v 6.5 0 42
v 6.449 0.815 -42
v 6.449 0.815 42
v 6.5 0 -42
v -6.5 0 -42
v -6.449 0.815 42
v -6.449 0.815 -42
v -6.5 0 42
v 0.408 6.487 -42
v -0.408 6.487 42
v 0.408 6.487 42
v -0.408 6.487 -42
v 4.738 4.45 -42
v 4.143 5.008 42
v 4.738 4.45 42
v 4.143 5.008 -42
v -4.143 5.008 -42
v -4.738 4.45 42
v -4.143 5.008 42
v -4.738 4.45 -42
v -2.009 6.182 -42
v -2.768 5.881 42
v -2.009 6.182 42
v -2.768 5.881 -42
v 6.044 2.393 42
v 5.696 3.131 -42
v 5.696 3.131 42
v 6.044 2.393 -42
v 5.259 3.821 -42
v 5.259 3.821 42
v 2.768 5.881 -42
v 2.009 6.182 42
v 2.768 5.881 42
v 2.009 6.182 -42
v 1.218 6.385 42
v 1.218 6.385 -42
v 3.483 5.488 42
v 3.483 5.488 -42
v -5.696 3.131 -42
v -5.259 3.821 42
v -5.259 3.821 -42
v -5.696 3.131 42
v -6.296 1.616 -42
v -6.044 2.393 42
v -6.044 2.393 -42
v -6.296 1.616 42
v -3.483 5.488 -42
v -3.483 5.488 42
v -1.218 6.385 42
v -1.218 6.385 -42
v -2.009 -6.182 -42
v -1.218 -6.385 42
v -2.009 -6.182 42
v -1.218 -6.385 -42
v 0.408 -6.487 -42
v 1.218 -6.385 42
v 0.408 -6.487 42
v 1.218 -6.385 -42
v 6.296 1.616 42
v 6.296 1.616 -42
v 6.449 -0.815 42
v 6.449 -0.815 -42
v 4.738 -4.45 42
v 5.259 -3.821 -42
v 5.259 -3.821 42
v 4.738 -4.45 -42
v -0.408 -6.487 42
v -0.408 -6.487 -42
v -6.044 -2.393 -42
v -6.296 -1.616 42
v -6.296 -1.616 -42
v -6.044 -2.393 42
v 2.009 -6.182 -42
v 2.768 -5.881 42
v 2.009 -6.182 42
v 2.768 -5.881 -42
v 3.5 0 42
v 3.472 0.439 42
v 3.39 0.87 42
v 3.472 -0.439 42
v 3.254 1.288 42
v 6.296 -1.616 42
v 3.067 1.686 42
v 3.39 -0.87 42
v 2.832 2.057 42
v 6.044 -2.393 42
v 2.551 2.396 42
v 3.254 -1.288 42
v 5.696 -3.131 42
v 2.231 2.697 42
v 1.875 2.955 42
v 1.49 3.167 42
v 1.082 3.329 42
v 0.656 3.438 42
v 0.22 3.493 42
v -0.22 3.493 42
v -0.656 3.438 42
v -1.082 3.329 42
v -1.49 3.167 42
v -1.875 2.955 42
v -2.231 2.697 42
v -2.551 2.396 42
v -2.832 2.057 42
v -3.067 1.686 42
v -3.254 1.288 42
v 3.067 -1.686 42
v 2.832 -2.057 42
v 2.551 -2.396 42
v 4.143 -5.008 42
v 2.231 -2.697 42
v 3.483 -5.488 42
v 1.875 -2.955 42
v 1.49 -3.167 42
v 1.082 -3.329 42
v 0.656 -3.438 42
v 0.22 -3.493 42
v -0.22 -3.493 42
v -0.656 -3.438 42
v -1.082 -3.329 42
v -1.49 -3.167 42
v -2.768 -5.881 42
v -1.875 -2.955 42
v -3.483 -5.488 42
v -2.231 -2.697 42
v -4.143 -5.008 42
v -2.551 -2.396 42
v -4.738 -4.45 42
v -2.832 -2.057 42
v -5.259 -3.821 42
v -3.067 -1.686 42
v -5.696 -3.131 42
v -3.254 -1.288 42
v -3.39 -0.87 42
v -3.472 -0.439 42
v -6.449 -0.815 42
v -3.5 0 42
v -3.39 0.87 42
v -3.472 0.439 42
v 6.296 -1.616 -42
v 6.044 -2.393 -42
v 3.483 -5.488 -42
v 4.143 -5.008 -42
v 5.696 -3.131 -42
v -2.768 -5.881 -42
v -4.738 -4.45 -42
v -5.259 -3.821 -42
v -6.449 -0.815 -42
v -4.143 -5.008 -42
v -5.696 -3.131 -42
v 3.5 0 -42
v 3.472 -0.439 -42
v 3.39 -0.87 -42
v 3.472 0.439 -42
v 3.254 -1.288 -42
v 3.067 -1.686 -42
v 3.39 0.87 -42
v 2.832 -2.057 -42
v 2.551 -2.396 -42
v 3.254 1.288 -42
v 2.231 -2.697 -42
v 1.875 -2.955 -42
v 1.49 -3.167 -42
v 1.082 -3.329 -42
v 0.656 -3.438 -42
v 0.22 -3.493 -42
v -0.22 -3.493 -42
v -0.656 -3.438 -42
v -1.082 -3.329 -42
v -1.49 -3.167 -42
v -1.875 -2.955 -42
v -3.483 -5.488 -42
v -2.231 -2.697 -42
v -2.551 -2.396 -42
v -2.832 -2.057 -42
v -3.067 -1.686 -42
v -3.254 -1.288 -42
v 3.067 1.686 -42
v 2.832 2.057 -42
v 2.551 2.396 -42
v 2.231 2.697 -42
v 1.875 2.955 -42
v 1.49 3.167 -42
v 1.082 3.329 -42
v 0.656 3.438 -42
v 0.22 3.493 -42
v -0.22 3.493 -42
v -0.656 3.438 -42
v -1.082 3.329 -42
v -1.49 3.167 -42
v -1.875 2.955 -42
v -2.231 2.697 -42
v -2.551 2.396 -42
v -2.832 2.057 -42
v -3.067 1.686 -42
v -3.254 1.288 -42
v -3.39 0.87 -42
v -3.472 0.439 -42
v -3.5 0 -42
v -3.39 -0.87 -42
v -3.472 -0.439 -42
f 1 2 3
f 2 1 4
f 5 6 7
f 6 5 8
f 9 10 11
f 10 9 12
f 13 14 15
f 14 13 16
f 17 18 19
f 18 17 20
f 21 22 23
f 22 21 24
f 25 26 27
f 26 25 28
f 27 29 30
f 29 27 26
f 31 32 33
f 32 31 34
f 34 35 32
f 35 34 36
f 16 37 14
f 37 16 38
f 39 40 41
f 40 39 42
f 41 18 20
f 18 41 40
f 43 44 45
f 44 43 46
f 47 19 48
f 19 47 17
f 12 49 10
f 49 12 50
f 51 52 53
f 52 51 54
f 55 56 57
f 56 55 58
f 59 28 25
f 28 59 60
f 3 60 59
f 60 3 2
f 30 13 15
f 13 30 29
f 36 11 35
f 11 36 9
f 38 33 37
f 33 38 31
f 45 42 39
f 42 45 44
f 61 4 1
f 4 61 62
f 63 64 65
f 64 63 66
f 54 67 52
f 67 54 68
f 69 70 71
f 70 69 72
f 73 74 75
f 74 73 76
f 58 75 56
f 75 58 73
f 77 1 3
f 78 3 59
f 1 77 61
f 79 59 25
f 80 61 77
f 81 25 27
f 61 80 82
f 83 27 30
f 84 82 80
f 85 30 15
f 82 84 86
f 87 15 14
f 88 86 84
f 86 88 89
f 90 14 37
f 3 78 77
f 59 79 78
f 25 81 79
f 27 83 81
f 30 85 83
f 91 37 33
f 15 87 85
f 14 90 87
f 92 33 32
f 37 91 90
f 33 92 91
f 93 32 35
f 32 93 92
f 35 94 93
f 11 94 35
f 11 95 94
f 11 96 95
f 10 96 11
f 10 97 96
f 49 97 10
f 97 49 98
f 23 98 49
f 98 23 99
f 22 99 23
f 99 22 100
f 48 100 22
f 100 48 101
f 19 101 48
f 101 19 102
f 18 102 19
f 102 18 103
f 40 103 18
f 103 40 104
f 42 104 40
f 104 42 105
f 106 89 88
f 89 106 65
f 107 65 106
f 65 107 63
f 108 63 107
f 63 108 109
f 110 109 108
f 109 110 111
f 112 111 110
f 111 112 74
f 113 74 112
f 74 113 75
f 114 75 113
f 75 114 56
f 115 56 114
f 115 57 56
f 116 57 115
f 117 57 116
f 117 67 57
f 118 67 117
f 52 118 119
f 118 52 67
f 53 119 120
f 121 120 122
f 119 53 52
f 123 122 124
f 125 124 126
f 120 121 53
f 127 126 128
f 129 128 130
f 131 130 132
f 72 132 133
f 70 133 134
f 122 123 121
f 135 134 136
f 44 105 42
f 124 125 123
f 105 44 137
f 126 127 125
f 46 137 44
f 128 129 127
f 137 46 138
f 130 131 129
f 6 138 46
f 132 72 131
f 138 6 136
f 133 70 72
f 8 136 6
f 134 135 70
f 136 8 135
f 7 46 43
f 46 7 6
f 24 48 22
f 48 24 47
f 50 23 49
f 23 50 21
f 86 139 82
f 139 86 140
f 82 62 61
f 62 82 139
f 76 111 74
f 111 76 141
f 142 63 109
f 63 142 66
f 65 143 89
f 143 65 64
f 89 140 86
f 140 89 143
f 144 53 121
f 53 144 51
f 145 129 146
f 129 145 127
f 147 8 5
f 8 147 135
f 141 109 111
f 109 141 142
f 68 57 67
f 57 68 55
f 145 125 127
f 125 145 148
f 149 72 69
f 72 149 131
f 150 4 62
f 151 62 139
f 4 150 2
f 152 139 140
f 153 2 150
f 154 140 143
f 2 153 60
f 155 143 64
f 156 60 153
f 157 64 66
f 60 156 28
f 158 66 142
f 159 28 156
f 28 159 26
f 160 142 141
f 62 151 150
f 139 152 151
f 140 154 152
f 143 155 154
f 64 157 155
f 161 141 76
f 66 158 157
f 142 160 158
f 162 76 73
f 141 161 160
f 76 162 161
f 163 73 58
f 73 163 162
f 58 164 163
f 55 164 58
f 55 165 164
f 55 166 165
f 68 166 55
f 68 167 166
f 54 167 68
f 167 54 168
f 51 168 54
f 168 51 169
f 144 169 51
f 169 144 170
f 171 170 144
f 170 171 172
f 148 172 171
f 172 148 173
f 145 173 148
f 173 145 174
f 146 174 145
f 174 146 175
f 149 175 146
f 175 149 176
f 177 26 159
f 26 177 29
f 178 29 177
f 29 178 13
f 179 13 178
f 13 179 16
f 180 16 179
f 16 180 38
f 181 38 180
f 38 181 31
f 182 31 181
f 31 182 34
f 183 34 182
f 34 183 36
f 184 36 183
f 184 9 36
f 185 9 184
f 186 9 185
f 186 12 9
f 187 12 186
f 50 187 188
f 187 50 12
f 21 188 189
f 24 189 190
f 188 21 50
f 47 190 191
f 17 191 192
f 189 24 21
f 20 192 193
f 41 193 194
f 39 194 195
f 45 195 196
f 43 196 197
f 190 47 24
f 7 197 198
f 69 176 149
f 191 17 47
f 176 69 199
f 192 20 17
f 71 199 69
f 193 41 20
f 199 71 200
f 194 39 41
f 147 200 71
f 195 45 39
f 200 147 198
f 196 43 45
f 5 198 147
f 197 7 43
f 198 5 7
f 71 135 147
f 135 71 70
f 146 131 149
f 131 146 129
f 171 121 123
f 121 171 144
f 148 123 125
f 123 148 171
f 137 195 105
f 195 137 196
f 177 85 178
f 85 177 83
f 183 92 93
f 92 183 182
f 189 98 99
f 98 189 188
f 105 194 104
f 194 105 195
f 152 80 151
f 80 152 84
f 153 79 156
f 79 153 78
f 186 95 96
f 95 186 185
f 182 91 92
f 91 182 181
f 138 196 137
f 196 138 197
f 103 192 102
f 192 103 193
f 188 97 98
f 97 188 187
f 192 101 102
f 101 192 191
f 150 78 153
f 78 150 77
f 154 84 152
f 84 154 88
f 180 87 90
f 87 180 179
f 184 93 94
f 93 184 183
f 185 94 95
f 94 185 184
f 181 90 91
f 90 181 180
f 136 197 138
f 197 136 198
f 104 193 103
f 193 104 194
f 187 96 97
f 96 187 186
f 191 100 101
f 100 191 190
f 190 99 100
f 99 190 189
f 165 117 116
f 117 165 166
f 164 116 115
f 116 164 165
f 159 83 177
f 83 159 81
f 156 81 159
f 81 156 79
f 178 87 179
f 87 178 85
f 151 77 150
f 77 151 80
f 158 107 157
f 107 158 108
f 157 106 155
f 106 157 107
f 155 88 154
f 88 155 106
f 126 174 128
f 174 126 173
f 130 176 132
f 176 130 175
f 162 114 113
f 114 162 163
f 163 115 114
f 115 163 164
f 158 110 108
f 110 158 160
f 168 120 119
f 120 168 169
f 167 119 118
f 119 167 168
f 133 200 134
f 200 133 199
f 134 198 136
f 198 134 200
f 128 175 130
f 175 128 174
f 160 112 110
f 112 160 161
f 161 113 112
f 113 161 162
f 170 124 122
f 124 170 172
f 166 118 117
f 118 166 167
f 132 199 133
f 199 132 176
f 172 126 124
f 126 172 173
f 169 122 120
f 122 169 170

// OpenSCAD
$fn = 50;


difference() {
	union() {
		translate(v = [0, 0, -42.0000000000]) {
			cylinder(h = 84, r = 6.5000000000);
		}
	}
	union() {
		translate(v = [0, 0, -100.0000000000]) {
			cylinder(h = 200, r = 3.5000000000);
		}
	}
}
